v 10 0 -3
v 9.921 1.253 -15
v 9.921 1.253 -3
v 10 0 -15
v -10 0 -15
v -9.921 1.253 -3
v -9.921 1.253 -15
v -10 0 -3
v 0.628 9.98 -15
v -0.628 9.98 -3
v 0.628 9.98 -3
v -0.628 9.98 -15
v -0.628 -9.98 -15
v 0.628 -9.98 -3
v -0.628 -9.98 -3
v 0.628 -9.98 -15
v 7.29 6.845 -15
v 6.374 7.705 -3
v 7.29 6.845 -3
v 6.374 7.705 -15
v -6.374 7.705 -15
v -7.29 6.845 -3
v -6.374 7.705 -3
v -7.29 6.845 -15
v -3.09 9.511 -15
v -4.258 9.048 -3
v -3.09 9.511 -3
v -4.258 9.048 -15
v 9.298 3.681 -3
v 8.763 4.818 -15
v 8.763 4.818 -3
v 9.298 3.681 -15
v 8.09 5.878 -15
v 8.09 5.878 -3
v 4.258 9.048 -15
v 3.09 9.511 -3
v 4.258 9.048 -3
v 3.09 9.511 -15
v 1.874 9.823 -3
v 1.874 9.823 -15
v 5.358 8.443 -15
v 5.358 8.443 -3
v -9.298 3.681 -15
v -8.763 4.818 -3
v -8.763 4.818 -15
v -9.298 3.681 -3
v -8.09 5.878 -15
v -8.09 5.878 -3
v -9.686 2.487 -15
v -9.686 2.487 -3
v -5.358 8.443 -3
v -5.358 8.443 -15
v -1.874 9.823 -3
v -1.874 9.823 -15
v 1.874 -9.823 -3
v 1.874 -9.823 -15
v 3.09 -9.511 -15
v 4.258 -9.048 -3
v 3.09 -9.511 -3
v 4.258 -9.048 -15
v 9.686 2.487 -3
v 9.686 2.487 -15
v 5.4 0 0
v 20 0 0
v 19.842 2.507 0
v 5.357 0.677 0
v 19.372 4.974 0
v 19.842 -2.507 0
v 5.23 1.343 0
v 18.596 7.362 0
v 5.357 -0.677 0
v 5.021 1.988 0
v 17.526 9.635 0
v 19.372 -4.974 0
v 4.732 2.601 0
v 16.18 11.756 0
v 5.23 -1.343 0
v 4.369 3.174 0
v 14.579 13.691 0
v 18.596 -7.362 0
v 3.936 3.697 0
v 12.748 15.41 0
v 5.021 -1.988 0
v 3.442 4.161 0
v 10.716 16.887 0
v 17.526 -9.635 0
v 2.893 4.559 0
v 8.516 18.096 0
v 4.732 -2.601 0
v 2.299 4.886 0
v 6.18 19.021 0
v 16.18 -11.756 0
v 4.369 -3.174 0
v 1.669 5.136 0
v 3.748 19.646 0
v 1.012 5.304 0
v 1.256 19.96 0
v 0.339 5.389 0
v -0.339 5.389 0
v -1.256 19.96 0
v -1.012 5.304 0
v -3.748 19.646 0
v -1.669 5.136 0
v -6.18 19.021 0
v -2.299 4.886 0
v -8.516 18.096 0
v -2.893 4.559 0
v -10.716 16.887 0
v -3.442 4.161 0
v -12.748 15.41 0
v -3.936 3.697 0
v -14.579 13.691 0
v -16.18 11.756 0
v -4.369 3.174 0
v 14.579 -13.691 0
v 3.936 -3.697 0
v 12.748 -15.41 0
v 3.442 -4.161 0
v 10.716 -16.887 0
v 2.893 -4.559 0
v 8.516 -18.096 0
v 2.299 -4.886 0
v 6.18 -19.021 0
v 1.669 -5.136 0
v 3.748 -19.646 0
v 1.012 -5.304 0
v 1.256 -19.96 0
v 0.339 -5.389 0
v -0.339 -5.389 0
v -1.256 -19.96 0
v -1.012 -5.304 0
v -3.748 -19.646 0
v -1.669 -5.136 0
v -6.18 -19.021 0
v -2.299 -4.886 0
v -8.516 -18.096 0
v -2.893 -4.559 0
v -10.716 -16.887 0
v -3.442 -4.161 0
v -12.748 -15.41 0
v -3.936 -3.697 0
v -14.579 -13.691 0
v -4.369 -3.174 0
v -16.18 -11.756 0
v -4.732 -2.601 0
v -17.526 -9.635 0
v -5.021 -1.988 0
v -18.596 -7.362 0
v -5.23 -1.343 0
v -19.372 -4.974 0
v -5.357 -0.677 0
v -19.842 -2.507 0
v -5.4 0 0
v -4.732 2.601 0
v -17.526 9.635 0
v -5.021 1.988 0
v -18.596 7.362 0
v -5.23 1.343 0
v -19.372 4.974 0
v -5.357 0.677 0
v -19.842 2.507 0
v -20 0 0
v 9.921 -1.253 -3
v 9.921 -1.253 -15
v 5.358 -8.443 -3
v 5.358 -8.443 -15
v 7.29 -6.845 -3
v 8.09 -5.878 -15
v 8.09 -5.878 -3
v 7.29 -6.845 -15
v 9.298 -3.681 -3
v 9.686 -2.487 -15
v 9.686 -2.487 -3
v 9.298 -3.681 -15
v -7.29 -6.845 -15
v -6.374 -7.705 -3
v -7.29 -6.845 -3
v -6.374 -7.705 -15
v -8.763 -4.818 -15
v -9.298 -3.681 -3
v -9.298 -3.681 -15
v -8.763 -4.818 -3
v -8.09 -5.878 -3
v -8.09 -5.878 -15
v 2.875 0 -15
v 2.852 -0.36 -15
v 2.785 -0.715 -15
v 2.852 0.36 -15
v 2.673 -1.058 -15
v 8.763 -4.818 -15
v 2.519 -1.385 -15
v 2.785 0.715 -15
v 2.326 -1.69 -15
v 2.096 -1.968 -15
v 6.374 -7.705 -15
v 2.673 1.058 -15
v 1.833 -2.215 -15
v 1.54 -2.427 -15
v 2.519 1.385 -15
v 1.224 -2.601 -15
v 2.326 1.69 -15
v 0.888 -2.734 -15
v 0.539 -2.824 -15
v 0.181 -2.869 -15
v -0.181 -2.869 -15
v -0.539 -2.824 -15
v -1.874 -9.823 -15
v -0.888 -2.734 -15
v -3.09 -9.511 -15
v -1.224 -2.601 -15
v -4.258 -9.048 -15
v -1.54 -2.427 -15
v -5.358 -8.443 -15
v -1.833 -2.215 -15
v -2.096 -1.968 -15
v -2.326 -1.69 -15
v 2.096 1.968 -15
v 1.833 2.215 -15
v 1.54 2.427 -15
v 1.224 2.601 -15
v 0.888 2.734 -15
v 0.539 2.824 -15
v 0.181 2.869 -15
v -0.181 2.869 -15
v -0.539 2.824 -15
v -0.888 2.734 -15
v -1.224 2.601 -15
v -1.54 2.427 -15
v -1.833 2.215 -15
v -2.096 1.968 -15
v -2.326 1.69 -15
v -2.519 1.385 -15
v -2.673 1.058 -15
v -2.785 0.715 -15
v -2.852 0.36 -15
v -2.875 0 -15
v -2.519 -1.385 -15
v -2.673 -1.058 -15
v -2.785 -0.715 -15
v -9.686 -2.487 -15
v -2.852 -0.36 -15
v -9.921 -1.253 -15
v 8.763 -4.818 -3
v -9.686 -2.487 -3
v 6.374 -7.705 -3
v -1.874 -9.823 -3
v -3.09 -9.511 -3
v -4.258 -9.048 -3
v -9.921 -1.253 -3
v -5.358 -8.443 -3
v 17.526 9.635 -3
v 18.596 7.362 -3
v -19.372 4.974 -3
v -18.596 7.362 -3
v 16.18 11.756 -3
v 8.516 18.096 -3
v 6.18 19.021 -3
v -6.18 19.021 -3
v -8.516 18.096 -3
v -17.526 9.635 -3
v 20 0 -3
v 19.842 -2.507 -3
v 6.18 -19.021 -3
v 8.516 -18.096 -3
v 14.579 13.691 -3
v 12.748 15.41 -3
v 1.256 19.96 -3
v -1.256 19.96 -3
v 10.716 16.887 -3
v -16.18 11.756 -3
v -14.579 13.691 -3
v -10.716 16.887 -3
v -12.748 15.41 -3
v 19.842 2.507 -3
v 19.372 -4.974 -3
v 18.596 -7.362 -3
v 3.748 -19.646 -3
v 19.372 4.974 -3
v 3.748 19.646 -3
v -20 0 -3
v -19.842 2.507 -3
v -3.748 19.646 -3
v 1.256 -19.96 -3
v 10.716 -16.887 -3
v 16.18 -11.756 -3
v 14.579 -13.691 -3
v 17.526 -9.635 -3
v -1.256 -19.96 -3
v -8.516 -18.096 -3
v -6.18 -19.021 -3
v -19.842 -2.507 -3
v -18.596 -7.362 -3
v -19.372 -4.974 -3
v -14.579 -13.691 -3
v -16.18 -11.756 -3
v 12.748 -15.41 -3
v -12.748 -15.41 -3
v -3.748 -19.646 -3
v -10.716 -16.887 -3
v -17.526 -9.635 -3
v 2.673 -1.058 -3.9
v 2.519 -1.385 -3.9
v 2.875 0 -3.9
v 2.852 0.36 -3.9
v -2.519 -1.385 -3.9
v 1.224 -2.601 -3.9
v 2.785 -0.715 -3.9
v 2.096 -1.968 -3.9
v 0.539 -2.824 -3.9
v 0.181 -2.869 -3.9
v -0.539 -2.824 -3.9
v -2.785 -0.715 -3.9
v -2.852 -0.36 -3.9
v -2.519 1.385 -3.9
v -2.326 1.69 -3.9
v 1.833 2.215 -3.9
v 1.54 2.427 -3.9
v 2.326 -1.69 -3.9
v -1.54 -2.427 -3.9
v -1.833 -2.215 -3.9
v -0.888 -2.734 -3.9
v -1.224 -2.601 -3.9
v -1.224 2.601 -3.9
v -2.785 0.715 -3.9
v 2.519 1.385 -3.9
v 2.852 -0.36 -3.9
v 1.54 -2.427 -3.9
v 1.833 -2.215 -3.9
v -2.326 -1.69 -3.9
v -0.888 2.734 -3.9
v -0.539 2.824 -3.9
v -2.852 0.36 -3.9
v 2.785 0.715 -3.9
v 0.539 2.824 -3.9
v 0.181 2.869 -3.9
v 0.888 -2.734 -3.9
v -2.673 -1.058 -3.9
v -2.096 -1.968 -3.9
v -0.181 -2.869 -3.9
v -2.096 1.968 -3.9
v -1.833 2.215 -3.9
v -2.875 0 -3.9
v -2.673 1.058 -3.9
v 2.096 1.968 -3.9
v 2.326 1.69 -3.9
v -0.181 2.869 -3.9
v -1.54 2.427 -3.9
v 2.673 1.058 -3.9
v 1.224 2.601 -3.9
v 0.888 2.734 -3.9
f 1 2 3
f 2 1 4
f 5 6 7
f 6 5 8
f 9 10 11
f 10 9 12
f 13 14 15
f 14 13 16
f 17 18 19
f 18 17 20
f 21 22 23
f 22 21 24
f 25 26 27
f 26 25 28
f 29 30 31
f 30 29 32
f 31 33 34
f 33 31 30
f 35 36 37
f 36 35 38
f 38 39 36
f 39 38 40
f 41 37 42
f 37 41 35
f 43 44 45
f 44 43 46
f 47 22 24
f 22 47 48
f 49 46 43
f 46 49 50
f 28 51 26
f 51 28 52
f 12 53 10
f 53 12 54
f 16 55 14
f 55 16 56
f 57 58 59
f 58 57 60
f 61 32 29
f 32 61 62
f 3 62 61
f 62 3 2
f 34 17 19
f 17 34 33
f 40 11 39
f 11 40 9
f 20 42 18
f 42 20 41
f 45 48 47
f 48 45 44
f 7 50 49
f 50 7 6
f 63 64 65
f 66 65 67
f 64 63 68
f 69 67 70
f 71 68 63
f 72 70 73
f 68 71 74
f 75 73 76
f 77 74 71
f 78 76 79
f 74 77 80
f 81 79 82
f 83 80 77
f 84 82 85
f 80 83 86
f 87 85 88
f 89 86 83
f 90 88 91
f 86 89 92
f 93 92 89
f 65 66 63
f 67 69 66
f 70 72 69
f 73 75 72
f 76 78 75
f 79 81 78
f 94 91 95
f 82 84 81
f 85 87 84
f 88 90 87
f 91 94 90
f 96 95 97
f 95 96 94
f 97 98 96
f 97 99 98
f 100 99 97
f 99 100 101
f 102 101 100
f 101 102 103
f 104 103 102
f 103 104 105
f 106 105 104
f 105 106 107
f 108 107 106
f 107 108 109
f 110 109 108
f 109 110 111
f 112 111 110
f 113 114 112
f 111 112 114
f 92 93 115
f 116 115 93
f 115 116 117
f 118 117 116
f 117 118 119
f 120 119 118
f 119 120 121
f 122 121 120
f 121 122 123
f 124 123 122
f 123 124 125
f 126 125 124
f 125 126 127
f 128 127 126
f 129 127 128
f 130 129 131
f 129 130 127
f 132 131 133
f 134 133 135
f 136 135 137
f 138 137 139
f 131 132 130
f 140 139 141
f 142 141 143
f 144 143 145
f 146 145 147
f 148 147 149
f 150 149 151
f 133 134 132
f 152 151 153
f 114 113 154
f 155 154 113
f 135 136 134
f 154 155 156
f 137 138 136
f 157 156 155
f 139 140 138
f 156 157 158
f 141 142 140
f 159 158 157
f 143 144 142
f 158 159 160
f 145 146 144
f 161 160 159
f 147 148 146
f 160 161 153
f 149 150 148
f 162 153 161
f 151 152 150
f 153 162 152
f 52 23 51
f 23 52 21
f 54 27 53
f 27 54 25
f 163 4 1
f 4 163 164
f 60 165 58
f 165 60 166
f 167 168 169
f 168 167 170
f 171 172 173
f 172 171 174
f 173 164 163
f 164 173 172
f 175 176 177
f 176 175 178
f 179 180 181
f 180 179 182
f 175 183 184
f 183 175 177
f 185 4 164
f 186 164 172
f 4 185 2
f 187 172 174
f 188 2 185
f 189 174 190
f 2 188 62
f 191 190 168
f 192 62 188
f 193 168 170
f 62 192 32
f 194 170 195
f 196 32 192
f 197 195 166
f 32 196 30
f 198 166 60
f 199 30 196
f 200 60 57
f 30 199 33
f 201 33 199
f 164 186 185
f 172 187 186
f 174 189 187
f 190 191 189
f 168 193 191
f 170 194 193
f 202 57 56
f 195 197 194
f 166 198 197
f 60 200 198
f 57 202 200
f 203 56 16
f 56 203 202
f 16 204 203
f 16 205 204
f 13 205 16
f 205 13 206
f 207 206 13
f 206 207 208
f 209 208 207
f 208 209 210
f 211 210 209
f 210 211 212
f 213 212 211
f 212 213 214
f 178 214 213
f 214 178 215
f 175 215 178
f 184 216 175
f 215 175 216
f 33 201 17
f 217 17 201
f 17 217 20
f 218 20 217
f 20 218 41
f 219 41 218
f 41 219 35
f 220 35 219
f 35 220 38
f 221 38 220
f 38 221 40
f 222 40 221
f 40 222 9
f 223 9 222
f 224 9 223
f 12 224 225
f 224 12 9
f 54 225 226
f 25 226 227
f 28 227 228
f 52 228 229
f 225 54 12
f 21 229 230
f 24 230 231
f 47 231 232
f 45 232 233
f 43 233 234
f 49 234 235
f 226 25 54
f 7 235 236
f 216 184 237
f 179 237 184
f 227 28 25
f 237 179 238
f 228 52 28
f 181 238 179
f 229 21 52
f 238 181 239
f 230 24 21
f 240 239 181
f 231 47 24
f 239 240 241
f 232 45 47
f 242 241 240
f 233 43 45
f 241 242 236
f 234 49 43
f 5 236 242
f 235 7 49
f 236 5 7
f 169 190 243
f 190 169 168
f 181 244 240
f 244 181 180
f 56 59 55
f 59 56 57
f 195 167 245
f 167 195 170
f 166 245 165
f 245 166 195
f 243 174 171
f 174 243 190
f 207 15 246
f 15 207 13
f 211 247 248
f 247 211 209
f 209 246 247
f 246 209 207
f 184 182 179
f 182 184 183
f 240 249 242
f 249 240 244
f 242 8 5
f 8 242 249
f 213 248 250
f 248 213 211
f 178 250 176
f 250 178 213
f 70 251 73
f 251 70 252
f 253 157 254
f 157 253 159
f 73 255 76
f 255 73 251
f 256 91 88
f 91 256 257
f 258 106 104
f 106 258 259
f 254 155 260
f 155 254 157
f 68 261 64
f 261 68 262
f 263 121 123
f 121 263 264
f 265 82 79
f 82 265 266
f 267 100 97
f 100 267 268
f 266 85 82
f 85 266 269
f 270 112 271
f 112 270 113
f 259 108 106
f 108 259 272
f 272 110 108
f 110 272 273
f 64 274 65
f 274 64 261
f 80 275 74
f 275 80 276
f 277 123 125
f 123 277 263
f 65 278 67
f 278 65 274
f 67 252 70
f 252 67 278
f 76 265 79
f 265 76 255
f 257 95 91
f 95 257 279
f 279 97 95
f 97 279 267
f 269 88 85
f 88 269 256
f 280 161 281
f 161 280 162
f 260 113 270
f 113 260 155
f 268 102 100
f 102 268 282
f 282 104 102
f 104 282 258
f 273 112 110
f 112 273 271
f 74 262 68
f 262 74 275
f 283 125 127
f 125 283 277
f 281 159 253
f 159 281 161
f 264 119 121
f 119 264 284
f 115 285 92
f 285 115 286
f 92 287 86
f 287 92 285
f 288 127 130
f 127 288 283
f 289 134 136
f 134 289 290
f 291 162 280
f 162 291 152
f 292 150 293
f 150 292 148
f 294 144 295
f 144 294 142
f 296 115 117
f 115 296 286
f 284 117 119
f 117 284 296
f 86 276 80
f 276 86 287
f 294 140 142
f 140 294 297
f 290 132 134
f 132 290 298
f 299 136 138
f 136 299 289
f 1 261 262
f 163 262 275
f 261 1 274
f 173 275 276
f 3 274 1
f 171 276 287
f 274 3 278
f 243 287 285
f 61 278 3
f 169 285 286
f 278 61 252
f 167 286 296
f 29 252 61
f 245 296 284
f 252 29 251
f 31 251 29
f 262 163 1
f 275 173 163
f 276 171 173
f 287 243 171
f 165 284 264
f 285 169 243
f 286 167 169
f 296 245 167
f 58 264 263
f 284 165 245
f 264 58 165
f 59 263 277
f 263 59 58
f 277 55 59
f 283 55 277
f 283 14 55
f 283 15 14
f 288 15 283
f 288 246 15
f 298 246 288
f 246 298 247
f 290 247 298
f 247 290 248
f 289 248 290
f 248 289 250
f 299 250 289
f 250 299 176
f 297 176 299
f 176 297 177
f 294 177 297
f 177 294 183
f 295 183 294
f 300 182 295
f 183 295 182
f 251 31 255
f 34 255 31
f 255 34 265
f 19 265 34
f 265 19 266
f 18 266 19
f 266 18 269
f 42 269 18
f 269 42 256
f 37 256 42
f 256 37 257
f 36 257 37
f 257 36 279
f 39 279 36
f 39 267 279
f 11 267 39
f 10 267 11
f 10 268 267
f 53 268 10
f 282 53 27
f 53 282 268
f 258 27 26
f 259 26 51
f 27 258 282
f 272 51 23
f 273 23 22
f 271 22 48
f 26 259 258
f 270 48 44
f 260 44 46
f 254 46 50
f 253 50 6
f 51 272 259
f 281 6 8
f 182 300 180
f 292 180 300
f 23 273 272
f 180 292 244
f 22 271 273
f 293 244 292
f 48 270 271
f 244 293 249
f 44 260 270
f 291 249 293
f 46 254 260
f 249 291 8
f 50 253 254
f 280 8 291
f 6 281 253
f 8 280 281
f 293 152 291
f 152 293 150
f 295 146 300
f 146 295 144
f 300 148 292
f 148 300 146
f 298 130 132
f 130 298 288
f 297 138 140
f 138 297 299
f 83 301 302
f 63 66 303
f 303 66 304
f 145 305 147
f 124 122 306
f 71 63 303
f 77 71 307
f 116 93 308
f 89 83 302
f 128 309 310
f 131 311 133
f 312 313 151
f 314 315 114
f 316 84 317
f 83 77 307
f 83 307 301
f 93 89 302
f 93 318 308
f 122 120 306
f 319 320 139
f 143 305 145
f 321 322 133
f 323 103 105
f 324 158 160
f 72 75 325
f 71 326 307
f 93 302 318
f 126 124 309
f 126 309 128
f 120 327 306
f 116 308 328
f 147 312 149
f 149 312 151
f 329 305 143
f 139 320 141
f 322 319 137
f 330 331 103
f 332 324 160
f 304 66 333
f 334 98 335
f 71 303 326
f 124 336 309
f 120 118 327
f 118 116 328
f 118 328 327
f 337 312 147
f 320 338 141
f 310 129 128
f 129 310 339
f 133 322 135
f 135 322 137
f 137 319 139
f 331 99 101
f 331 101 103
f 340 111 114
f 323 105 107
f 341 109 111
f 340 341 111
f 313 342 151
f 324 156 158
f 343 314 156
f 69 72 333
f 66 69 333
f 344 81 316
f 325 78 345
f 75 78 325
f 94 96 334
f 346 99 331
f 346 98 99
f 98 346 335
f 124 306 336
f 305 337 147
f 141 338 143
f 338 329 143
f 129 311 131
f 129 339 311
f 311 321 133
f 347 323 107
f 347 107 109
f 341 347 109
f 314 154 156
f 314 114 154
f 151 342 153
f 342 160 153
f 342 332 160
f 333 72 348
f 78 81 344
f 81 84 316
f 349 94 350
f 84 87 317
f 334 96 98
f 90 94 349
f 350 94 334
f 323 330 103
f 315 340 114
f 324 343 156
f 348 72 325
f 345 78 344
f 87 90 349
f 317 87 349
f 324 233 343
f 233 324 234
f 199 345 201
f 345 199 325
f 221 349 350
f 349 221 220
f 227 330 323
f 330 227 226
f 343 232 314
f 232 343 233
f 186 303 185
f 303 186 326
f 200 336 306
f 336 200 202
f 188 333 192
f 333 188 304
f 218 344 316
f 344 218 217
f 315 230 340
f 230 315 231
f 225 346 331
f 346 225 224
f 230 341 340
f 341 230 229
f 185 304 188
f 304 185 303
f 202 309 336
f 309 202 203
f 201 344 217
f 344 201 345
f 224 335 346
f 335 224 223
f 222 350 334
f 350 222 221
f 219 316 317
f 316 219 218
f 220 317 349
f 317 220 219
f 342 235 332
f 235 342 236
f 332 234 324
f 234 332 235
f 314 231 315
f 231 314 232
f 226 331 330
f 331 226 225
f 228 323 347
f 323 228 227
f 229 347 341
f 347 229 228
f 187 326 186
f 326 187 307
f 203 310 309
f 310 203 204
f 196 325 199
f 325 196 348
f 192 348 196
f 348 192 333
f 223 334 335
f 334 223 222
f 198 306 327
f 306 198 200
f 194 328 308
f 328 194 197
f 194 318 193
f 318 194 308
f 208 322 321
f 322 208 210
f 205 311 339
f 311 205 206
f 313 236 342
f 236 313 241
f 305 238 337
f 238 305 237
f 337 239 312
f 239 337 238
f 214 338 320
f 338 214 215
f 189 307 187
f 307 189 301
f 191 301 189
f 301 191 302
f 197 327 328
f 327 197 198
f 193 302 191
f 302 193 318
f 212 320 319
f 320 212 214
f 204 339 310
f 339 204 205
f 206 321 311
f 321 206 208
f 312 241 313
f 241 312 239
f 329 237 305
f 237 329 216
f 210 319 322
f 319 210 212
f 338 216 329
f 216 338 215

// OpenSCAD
$fn = 50;


difference() {
	union() {
		translate(v = [0, 0, -15.0000000000]) {
			cylinder(h = 15, r = 10.0000000000);
		}
		translate(v = [0, 0, -3.0000000000]) {
			cylinder(h = 3, r = 20.0000000000);
		}
	}
	union() {
		translate(v = [0, 0, 0]) {
			rotate(a = [0, 0, 0]) {
				difference() {
					union() {
						#translate(v = [0, 0, -15.0000000000]) {
							cylinder(h = 15, r = 2.6000000000);
						}
						#translate(v = [0, 0, -3.9000000000]) {
							cylinder(h = 3.9000000000, r1 = 2.8750000000, r2 = 5.4000000000);
						}
						#translate(v = [0, 0, -15.0000000000]) {
							cylinder(h = 15, r = 2.8750000000);
						}
						#translate(v = [0, 0, -15.0000000000]) {
							cylinder(h = 15, r = 2.6000000000);
						}
					}
					union();
				}
			}
		}
	}
}
